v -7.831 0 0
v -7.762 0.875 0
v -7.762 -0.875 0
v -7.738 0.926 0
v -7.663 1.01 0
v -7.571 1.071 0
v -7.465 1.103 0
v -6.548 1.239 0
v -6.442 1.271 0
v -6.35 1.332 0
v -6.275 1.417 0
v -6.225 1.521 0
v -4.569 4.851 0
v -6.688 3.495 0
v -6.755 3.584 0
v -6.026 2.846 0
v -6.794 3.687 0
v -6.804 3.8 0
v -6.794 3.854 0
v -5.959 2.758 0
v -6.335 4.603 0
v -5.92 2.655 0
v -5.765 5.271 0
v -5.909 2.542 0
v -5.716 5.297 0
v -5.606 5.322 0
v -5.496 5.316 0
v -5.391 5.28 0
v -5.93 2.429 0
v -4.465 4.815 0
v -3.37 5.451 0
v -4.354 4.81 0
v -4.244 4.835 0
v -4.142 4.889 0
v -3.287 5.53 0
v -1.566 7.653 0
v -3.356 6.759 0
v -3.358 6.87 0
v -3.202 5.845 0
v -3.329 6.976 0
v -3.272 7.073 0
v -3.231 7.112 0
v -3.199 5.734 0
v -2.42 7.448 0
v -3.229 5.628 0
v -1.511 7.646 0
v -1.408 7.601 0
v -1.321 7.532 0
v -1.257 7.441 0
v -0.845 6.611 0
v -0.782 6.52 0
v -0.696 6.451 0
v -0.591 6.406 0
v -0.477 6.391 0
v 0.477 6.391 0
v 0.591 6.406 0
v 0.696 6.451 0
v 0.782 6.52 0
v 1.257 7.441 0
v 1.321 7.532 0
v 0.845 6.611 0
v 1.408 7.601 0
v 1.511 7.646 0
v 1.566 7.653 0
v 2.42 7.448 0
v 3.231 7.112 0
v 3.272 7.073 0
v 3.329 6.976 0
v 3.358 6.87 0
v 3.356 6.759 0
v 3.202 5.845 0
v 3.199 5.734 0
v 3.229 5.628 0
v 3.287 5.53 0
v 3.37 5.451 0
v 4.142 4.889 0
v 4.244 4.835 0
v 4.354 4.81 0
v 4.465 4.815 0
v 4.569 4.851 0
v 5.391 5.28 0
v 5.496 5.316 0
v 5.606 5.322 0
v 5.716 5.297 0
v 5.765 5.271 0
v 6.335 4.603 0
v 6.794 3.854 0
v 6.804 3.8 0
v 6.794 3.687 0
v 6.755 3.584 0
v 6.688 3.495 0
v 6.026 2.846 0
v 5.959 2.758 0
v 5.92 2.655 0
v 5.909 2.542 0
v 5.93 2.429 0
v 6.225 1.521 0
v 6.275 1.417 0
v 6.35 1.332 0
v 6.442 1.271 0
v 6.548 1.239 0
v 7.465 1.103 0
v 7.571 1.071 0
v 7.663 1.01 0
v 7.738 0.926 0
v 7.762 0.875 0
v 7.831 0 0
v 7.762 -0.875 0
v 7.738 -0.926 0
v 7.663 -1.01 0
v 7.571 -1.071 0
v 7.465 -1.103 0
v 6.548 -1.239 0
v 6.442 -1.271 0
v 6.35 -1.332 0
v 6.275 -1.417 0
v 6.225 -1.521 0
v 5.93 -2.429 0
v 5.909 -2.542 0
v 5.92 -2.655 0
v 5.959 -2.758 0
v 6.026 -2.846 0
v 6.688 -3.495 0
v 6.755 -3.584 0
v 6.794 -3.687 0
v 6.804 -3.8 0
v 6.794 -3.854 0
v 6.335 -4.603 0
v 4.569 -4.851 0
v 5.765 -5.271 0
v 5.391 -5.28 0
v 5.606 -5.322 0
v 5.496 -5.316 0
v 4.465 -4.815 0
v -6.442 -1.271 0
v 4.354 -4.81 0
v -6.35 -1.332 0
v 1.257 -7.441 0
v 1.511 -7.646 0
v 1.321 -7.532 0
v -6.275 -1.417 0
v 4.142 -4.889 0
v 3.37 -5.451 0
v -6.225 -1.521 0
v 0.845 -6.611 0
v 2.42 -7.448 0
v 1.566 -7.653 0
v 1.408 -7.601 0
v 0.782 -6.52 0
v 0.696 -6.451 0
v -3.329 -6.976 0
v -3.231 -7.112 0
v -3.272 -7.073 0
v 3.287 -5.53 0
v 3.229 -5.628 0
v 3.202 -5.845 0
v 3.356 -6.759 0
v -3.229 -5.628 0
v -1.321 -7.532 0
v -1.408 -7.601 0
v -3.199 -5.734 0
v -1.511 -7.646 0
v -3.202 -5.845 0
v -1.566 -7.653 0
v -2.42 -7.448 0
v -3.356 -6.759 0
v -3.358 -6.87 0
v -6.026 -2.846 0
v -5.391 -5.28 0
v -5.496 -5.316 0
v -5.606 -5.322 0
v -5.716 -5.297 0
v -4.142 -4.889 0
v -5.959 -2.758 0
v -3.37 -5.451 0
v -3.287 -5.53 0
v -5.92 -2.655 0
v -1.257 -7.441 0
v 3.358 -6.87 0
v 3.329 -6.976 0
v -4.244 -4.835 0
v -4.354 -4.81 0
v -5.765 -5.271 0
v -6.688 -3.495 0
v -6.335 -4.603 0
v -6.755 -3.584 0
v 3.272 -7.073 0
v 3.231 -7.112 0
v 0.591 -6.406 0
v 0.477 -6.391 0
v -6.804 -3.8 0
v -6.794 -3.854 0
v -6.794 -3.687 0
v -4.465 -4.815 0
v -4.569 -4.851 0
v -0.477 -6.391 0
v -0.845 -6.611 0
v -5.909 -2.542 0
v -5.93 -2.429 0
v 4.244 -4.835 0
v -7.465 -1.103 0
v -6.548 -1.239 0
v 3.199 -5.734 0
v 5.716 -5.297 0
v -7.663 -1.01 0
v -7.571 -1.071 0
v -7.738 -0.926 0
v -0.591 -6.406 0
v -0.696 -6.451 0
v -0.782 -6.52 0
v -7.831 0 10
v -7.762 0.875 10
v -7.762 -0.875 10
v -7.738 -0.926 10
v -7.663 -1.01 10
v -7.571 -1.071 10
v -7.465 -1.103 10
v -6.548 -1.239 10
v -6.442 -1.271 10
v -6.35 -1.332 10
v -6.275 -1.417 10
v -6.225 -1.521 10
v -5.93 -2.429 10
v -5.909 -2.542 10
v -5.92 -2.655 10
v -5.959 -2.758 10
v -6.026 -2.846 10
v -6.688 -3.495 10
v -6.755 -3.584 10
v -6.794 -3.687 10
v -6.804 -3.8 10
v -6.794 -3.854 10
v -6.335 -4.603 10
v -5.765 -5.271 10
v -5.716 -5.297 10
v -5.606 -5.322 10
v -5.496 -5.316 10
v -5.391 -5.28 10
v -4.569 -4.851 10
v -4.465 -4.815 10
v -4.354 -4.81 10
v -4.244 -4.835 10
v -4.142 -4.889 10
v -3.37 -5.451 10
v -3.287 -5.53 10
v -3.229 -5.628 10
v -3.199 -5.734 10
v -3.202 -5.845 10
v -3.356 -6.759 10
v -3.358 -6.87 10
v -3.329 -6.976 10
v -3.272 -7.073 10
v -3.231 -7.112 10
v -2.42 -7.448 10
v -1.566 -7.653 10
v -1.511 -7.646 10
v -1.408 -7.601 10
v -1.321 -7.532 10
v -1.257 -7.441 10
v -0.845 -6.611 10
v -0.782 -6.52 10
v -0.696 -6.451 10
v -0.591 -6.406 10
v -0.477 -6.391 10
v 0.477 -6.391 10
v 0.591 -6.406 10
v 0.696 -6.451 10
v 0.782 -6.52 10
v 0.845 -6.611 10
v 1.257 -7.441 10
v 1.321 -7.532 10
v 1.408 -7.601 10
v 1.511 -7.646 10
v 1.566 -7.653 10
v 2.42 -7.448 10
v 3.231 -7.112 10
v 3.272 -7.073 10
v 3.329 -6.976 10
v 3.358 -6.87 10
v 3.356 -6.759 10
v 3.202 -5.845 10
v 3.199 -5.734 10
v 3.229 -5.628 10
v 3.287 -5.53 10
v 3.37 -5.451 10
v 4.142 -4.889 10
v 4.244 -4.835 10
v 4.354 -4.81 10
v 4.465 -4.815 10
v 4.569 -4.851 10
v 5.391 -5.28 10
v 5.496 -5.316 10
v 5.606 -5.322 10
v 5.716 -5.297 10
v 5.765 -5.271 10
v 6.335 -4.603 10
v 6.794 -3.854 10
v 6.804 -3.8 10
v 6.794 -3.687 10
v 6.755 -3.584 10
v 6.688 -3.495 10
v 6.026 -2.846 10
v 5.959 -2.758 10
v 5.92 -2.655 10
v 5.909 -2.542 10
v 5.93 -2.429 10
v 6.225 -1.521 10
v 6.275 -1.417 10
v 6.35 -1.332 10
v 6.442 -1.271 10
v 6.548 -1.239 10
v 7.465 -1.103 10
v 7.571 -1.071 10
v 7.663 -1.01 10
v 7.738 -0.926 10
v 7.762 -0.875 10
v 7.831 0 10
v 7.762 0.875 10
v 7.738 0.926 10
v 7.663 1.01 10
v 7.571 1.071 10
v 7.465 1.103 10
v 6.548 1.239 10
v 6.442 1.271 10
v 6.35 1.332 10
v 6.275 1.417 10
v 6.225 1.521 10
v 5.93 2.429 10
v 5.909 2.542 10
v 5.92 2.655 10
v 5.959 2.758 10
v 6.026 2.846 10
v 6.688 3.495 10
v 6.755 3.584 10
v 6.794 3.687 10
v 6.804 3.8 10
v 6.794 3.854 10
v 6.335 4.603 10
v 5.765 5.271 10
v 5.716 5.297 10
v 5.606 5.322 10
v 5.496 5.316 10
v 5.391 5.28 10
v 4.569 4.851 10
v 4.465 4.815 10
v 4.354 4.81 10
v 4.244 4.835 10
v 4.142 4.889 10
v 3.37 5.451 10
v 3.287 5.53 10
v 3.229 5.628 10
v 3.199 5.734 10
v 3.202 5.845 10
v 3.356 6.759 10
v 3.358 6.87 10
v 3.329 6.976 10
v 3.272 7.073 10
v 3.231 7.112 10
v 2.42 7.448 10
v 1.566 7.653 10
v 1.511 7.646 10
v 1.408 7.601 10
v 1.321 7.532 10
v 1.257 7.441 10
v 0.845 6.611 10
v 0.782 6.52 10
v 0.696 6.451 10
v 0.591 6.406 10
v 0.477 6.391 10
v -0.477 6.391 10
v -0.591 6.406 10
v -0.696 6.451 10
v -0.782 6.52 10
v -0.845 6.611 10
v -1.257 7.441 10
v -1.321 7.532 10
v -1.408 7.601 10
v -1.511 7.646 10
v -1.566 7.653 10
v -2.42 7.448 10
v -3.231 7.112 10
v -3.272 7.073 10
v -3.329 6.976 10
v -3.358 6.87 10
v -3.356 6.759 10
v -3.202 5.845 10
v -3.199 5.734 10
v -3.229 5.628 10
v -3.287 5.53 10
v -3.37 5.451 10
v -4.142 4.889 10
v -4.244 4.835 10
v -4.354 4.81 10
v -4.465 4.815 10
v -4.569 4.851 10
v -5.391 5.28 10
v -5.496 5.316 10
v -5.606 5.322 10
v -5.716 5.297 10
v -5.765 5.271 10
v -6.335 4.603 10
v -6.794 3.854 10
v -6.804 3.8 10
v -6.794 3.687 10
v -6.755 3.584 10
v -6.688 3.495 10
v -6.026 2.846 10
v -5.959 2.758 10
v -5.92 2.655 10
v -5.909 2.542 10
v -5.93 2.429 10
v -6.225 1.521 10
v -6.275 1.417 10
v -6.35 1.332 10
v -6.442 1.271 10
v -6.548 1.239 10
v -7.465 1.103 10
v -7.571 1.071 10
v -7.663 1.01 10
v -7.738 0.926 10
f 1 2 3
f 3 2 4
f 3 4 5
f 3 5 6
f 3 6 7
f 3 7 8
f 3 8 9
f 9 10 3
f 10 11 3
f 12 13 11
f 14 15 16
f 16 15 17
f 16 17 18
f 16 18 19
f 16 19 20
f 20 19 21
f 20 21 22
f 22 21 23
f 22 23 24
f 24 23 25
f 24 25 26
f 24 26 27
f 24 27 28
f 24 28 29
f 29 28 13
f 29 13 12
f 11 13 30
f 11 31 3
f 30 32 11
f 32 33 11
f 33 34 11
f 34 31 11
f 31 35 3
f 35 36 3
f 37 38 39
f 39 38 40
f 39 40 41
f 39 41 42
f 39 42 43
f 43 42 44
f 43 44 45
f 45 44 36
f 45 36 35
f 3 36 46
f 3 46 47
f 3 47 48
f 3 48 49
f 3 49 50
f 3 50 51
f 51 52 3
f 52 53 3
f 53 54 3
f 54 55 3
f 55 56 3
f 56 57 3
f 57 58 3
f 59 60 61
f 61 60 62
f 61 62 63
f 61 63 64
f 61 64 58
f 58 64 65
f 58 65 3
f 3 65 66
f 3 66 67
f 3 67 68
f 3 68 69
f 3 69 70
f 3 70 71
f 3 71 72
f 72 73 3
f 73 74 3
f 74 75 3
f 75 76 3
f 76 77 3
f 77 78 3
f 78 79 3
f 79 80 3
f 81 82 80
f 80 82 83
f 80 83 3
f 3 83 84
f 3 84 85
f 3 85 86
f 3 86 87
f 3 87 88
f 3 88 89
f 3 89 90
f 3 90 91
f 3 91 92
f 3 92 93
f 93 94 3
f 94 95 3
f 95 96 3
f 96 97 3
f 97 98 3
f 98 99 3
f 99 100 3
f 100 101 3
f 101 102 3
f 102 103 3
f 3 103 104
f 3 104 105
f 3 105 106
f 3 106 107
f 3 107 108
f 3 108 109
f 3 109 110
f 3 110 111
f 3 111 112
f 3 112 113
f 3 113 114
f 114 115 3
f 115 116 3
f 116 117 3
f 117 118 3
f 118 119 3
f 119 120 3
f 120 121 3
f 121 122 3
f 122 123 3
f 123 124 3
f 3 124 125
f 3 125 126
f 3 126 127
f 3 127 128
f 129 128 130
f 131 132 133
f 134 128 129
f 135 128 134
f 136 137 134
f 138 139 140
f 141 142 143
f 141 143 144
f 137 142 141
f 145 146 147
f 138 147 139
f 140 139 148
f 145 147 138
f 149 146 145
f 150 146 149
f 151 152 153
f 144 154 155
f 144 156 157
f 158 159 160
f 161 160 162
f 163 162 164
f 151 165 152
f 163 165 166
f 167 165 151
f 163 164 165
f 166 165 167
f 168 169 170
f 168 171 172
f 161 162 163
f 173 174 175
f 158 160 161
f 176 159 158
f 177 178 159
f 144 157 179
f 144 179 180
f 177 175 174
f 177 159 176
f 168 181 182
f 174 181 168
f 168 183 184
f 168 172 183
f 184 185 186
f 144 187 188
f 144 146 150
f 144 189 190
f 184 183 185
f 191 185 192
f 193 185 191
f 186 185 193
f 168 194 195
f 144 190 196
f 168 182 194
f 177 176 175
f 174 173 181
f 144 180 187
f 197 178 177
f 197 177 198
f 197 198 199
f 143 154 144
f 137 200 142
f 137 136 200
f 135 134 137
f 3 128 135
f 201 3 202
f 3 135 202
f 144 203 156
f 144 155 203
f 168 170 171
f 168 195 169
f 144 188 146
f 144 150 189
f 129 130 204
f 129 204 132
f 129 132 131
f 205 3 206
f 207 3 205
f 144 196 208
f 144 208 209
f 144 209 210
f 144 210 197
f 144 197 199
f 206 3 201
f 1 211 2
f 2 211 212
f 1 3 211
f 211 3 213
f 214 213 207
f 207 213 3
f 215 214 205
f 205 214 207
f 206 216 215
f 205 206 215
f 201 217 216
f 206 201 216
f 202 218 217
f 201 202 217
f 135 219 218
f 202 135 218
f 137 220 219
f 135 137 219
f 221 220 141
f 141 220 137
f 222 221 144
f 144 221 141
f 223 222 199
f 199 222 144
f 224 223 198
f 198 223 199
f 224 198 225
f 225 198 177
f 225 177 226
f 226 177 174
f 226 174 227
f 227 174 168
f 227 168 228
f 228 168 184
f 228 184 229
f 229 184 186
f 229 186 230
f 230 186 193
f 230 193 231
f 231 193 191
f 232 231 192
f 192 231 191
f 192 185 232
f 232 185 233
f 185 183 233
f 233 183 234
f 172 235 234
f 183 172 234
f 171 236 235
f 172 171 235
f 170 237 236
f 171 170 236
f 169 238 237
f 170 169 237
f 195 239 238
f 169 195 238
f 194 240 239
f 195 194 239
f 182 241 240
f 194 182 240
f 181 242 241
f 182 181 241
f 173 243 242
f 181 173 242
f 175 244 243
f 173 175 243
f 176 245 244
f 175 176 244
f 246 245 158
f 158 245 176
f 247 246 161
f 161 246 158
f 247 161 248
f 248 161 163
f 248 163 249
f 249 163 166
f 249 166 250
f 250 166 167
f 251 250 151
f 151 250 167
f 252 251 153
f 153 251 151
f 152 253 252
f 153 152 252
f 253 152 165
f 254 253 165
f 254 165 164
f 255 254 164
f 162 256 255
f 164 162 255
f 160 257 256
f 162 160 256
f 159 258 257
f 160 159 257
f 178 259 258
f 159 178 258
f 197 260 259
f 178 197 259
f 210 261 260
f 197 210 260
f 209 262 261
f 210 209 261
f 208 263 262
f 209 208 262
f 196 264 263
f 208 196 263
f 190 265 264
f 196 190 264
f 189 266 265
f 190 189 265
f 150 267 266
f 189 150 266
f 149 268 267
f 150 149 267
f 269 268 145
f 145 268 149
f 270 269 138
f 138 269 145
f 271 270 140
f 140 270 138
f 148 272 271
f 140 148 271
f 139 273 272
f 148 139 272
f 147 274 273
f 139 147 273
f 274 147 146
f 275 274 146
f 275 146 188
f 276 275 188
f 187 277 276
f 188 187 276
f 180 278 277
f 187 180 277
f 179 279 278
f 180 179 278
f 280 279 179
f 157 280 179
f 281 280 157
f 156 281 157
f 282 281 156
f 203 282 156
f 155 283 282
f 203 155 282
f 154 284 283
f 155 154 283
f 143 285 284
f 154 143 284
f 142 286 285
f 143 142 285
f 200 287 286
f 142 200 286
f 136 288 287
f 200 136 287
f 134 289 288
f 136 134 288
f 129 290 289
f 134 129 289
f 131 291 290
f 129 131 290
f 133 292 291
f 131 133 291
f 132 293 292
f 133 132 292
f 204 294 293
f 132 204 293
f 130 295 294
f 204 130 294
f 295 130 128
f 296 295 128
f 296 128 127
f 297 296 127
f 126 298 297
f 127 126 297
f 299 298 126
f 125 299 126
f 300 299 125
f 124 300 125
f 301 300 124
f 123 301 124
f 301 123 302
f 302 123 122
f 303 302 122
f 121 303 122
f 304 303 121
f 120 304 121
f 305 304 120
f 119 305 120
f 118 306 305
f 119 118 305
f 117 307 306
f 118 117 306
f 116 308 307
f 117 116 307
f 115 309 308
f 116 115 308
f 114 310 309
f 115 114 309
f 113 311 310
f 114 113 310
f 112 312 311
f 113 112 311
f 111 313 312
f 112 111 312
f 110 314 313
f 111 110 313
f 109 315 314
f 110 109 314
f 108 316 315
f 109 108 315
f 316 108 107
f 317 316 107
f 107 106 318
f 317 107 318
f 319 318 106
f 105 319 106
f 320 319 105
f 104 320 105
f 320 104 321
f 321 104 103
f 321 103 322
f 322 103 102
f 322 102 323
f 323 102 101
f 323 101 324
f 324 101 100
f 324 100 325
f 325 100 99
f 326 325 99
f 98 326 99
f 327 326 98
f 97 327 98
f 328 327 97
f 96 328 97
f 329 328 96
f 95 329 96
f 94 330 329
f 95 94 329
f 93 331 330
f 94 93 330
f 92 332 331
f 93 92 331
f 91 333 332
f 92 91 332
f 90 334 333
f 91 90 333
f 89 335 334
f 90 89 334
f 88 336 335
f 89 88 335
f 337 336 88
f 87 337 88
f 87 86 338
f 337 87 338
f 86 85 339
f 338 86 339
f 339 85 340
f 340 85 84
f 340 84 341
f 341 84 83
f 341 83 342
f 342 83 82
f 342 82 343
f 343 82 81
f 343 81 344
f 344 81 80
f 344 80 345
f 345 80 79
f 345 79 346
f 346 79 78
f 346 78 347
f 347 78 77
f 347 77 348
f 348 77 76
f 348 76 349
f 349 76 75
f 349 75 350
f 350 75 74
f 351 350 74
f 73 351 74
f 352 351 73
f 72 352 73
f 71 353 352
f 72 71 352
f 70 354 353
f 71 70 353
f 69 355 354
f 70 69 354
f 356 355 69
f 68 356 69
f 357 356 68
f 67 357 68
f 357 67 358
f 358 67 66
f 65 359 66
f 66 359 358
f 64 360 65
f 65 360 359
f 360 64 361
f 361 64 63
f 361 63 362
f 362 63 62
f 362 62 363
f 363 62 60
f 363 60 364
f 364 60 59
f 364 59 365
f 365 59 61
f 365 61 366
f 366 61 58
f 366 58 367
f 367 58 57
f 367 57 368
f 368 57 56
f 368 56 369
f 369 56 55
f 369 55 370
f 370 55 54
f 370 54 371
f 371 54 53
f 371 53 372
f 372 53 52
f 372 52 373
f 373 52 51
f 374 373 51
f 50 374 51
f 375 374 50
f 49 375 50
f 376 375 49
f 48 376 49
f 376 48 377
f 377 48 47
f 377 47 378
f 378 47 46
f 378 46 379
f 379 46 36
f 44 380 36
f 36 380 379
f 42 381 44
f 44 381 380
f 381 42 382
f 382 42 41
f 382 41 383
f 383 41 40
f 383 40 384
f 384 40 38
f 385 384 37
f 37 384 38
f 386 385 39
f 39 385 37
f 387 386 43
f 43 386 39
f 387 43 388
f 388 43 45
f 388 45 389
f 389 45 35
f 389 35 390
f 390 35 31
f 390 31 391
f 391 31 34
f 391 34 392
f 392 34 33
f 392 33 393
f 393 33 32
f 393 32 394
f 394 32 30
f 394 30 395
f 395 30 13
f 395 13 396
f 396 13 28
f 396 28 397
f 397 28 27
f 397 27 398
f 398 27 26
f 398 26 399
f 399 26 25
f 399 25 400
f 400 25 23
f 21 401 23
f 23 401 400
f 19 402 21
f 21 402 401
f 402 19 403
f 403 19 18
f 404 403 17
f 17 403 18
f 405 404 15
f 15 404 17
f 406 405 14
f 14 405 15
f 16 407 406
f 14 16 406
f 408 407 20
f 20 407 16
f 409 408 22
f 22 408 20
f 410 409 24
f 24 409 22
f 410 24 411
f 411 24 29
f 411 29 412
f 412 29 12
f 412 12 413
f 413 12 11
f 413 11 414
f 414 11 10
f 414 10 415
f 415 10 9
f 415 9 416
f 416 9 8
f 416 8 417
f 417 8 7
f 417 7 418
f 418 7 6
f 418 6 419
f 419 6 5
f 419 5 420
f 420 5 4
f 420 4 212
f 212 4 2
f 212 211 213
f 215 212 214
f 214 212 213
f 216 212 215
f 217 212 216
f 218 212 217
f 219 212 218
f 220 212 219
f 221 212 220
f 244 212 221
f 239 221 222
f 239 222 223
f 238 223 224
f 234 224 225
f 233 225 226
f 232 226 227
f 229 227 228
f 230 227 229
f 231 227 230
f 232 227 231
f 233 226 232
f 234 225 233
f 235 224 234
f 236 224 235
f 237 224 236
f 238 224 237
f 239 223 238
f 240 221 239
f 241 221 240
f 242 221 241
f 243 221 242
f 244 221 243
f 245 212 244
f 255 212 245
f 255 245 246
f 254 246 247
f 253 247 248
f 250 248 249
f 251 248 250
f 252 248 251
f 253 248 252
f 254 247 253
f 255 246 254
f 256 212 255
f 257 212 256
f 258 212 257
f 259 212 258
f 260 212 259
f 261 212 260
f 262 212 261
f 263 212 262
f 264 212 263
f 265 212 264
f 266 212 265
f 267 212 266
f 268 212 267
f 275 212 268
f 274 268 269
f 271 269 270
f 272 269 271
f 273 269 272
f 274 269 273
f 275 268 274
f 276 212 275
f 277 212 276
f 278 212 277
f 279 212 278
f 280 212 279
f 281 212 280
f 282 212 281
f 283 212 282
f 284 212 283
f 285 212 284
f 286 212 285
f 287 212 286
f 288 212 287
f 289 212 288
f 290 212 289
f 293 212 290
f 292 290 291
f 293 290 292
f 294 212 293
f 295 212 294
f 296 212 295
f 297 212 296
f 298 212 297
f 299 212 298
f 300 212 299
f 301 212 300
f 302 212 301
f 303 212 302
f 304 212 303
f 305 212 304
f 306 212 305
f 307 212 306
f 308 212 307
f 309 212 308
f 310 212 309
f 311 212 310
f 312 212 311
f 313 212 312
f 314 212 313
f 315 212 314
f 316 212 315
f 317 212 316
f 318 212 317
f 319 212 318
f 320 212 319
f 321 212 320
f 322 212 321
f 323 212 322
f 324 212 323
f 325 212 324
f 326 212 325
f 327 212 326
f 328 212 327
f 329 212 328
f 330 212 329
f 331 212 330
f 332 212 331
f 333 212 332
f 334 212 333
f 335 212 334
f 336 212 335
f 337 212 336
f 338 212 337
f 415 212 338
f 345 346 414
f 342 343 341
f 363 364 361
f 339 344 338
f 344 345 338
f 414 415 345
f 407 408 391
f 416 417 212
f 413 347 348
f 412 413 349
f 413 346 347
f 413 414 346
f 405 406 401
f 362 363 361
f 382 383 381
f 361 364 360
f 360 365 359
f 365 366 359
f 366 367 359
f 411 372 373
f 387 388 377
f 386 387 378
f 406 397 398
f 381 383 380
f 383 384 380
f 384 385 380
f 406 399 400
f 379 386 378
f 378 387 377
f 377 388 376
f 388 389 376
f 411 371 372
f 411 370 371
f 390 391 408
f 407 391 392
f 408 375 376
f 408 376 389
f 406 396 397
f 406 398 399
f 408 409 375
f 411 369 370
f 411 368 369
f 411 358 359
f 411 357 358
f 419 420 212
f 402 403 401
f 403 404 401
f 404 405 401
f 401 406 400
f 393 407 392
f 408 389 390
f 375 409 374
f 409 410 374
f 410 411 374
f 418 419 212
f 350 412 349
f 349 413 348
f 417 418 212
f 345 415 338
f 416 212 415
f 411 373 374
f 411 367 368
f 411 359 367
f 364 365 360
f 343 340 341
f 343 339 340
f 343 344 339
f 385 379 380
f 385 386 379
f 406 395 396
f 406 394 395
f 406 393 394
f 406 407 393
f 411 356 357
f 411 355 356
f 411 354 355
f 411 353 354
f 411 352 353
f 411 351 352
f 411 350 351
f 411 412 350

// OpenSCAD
// Parametric Pulley with multiple belt profiles
// by droftarts January 2012

// Based on pulleys by:
// http://www.thingiverse.com/thing:11256 by me!
// https://github.com/prusajr/PrusaMendel by Josef Prusa
// http://www.thingiverse.com/thing:3104 by GilesBathgate
// http://www.thingiverse.com/thing:2079 by nophead

// dxf tooth data from http://oem.cadregister.com/asp/PPOW_Entry.asp?company=915217&elementID=07807803/METRIC/URETH/WV0025/F
// pulley diameter checked and modelled from data at http://www.sdp-si.com/D265/HTML/D265T016.html

/**
 * @name Pulley
 * @category Printed
 * @using 1 x m3 nut, normal or nyloc
 * @using 1 x m3x10 set screw or 1 x m3x8 grub screw
 */


// tuneable constants

// Minimum of 10 teeth

teeth = 10;			// Number of teeth, standard Mendel T5 belt = 8, gives Outside Diameter of 11.88mm
profile = 3;		// 1=MXL 2=40DP 3=XL 4=H 5=T2.5 6=T5 7=T10 8=AT5 9=HTD_3mm 10=HTD_5mm 11=HTD_8mm 12=GT2_2mm 13=GT2_3mm 14=GT2_5mm

motor_shaft = 0;	// NEMA17 motor shaft exact diameter = 5
m3_dia = 0;		// 3mm hole diameter
m3_nut_hex = 0;		// 1 for hex, 0 for square nut
m3_nut_flats = 0;	// normal M3 hex nut exact width = 5.5
m3_nut_depth = 0;	// normal M3 hex nut exact depth = 2.4, nyloc = 4

retainer = 0;		// Belt retainer above teeth, 0 = No, 1 = Yes
retainer_ht = 0;	// height of retainer flange over pulley, standard = 1.5
idler = 0;			// Belt retainer below teeth, 0 = No, 1 = Yes
idler_ht = 0;		// height of idler flange over pulley, standard = 1.5

pulley_t_ht = 10;	// length of toothed part of pulley, standard = 12
pulley_b_ht = 0;		// pulley base height, standard = 8. Set to same as idler_ht if you want an idler but no pulley.
pulley_b_dia = 10;	// pulley base diameter, standard = 20
no_of_nuts = 0;		// number of captive nuts required, standard = 1
nut_angle = 0;		// angle between nuts, standard = 90
nut_shaft_distance = 0;	// distance between inner face of nut and shaft, can be negative.


//	********************************
//	** Scaling tooth for good fit **
//	********************************
/*	To improve fit of belt to pulley, set the following constant. Decrease or increase by 0.1mm at a time. We are modelling the *BELT* tooth here, not the tooth on the pulley. Increasing the number will *decrease* the pulley tooth size. Increasing the tooth width will also scale proportionately the tooth depth, to maintain the shape of the tooth, and increase how far into the pulley the tooth is indented. Can be negative */

additional_tooth_width = 0.2; //mm

//	If you need more tooth depth than this provides, adjust the following constant. However, this will cause the shape of the tooth to change.

additional_tooth_depth = 0; //mm

// calculated constants

nut_elevation = pulley_b_ht/2;
m3_nut_points = 2*((m3_nut_flats/2)/cos(30)); // This is needed for the nut trap

// The following set the pulley diameter for a given number of teeth

MXL_pulley_dia = tooth_spacing (2.032,0.254);
40DP_pulley_dia = tooth_spacing (2.07264,0.1778);
XL_pulley_dia = tooth_spacing (5.08,0.254);
H_pulley_dia = tooth_spacing (9.525,0.381);
T2_5_pulley_dia = tooth_spaceing_curvefit (0.7467,0.796,1.026);
T5_pulley_dia = tooth_spaceing_curvefit (0.6523,1.591,1.064);
T10_pulley_dia = tooth_spacing (10,0.93);
AT5_pulley_dia = tooth_spaceing_curvefit (0.6523,1.591,1.064);
HTD_3mm_pulley_dia = tooth_spacing (3,0.381);
HTD_5mm_pulley_dia = tooth_spacing (5,0.5715);
HTD_8mm_pulley_dia = tooth_spacing (8,0.6858);
GT2_2mm_pulley_dia = tooth_spacing (2,0.254);
GT2_3mm_pulley_dia = tooth_spacing (3,0.381);
GT2_5mm_pulley_dia = tooth_spacing (5,0.5715);

// The following calls the pulley creation part, and passes the pulley diameter and tooth width to that module

if ( profile == 1 ) { pulley ( "MXL" , MXL_pulley_dia , 0.508 , 1.321 ); }
if ( profile == 2 ) { pulley ( "40 D.P." , 40DP_pulley_dia , 0.457 , 1.226 ); }
if ( profile == 3 ) { pulley ( "XL" , XL_pulley_dia , 1.27, 3.051 ); }
if ( profile == 4 ) { pulley ( "H" , H_pulley_dia ,1.905 , 5.359 ); }
if ( profile == 5 ) { pulley ( "T2.5" , T2_5_pulley_dia , 0.7 , 1.678 ); }
if ( profile == 6 ) { pulley ( "T5" , T5_pulley_dia , 1.19 , 3.264 ); }
if ( profile == 7 ) { pulley ( "T10" , T10_pulley_dia , 2.5 , 6.13 ); }
if ( profile == 8 ) { pulley ( "AT5" , AT5_pulley_dia , 1.19 , 4.268 ); }
if ( profile == 9 ) { pulley ( "HTD 3mm" , HTD_3mm_pulley_dia , 1.289 , 2.27 ); }
if ( profile == 10 ) { pulley ( "HTD 5mm" , HTD_5mm_pulley_dia , 2.199 , 3.781 ); }
if ( profile == 11 ) { pulley ( "HTD 8mm" , HTD_8mm_pulley_dia , 3.607 , 6.603 ); }
if ( profile == 12 ) { pulley ( "GT2 2mm" , GT2_2mm_pulley_dia , 0.764 , 1.494 ); }
if ( profile == 13 ) { pulley ( "GT2 3mm" , GT2_3mm_pulley_dia , 1.169 , 2.31 ); }
if ( profile == 14 ) { pulley ( "GT2 5mm" , GT2_5mm_pulley_dia , 1.969 , 3.952 ); }

// Functions

function tooth_spaceing_curvefit (b,c,d)
	= ((c * pow(teeth,d)) / (b + pow(teeth,d))) * teeth ;

function tooth_spacing(tooth_pitch,pitch_line_offset)
	= (2*((teeth*tooth_pitch)/(3.14159265*2)-pitch_line_offset)) ;

// Main Module

module pulley( belt_type , pulley_OD , tooth_depth , tooth_width )
	{
	echo (str("Belt type = ",belt_type,"; Number of teeth = ",teeth,"; Pulley Outside Diameter = ",pulley_OD,"mm "));
	tooth_distance_from_centre = sqrt( pow(pulley_OD/2,2) - pow((tooth_width+additional_tooth_width)/2,2));
	tooth_width_scale = (tooth_width + additional_tooth_width ) / tooth_width;
	tooth_depth_scale = ((tooth_depth + additional_tooth_depth ) / tooth_depth) ;


//	************************************************************************
//	*** uncomment the following line if pulley is wider than puller base ***
//	************************************************************************

//	translate ([0,0, pulley_b_ht + pulley_t_ht + retainer_ht ]) rotate ([0,180,0])

	difference()
	 {	 
		union()
		{
			//base
	
			if ( pulley_b_ht < 2 ) { echo ("CAN'T DRAW PULLEY BASE, HEIGHT LESS THAN 2!!!"); } else {
				rotate_extrude($fn=pulley_b_dia*2)
				{
						square([pulley_b_dia/2-1,pulley_b_ht]);
						square([pulley_b_dia/2,pulley_b_ht-1]);
						translate([pulley_b_dia/2-1,pulley_b_ht-1]) circle(1);
				}
			}
	
		difference()
			{
			//shaft - diameter is outside diameter of pulley
			
			translate([0,0,pulley_b_ht]) 
			rotate ([0,0,360/(teeth*4)]) 
			cylinder(r=pulley_OD/2,h=pulley_t_ht, $fn=teeth*4);
	
			//teeth - cut out of shaft
		
			for(i=[1:teeth]) 
			rotate([0,0,i*(360/teeth)])
			translate([0,-tooth_distance_from_centre,pulley_b_ht -1]) 
			scale ([ tooth_width_scale , tooth_depth_scale , 1 ]) 
			{
			if ( profile == 1 ) { MXL();}
			if ( profile == 2 ) { 40DP();}
			if ( profile == 3 ) { XL();}
			if ( profile == 4 ) { H();}
			if ( profile == 5 ) { T2_5();}
			if ( profile == 6 ) { T5();}
			if ( profile == 7 ) { T10();}
			if ( profile == 8 ) { AT5();}
			if ( profile == 9 ) { HTD_3mm();}
			if ( profile == 10 ) { HTD_5mm();}
			if ( profile == 11 ) { HTD_8mm();}
			if ( profile == 12 ) { GT2_2mm();}
			if ( profile == 13 ) { GT2_3mm();}
			if ( profile == 14 ) { GT2_5mm();}
			}

			}
			
		//belt retainer / idler
		if ( retainer > 0 ) {translate ([0,0, pulley_b_ht + pulley_t_ht ]) 
		rotate_extrude($fn=teeth*4)  
		polygon([[0,0],[pulley_OD/2,0],[pulley_OD/2 + retainer_ht , retainer_ht],[0 , retainer_ht],[0,0]]);}
		
		if ( idler > 0 ) {translate ([0,0, pulley_b_ht - idler_ht ]) 
		rotate_extrude($fn=teeth*4)  
		polygon([[0,0],[pulley_OD/2 + idler_ht,0],[pulley_OD/2 , idler_ht],[0 , idler_ht],[0,0]]);}
	
		}
	   
		//hole for motor shaft
		translate([0,0,-1])cylinder(r=motor_shaft/2,h=pulley_b_ht + pulley_t_ht + retainer_ht + 2,$fn=motor_shaft*4);
				
		//captive nut and grub screw holes
	
		if ( pulley_b_ht < m3_nut_flats ) { echo ("CAN'T DRAW CAPTIVE NUTS, HEIGHT LESS THAN NUT DIAMETER!!!"); } else {
		if ( (pulley_b_dia - motor_shaft)/2 < m3_nut_depth + 3 ) { echo ("CAN'T DRAW CAPTIVE NUTS, DIAMETER TOO SMALL FOR NUT DEPTH!!!"); } else {
	
			for(j=[1:no_of_nuts]) rotate([0,0,j*nut_angle])
			translate([0,0,nut_elevation])rotate([90,0,0])
	
			union()
			{
				//entrance
				translate([0,-pulley_b_ht/4-0.5,motor_shaft/2+m3_nut_depth/2+nut_shaft_distance]) cube([m3_nut_flats,pulley_b_ht/2+1,m3_nut_depth],center=true);
	
				//nut
				if ( m3_nut_hex > 0 )
					{
						// hex nut
						translate([0,0.25,motor_shaft/2+m3_nut_depth/2+nut_shaft_distance]) rotate([0,0,30]) cylinder(r=m3_nut_points/2,h=m3_nut_depth,center=true,$fn=6);
					} else {
						// square nut
						translate([0,0.25,motor_shaft/2+m3_nut_depth/2+nut_shaft_distance]) cube([m3_nut_flats,m3_nut_flats,m3_nut_depth],center=true);
					}
	
				//grub screw hole
				rotate([0,0,22.5])cylinder(r=m3_dia/2,h=pulley_b_dia/2+1,$fn=8);
			}
		}}
	 }
	   
	}


// Tooth profile modules

module MXL()
	{
	linear_extrude(height=pulley_t_ht+2) polygon([[-0.660421,-0.5],[-0.660421,0],[-0.621898,0.006033],[-0.587714,0.023037],[-0.560056,0.049424],[-0.541182,0.083609],[-0.417357,0.424392],[-0.398413,0.458752],[-0.370649,0.48514],[-0.336324,0.502074],[-0.297744,0.508035],[0.297744,0.508035],[0.336268,0.502074],[0.370452,0.48514],[0.39811,0.458752],[0.416983,0.424392],[0.540808,0.083609],[0.559752,0.049424],[0.587516,0.023037],[0.621841,0.006033],[0.660421,0],[0.660421,-0.5]]);
	}

module 40DP()
	{
	linear_extrude(height=pulley_t_ht+2) polygon([[-0.612775,-0.5],[-0.612775,0],[-0.574719,0.010187],[-0.546453,0.0381],[-0.355953,0.3683],[-0.327604,0.405408],[-0.291086,0.433388],[-0.248548,0.451049],[-0.202142,0.4572],[0.202494,0.4572],[0.248653,0.451049],[0.291042,0.433388],[0.327609,0.405408],[0.356306,0.3683],[0.546806,0.0381],[0.574499,0.010187],[0.612775,0],[0.612775,-0.5]]);
	}

module XL()
	{
	linear_extrude(height=pulley_t_ht+2) polygon([[-1.525411,-1],[-1.525411,0],[-1.41777,0.015495],[-1.320712,0.059664],[-1.239661,0.129034],[-1.180042,0.220133],[-0.793044,1.050219],[-0.733574,1.141021],[-0.652507,1.210425],[-0.555366,1.254759],[-0.447675,1.270353],[0.447675,1.270353],[0.555366,1.254759],[0.652507,1.210425],[0.733574,1.141021],[0.793044,1.050219],[1.180042,0.220133],[1.239711,0.129034],[1.320844,0.059664],[1.417919,0.015495],[1.525411,0],[1.525411,-1]]);
	}

module H()
	{
	linear_extrude(height=pulley_t_ht+2) polygon([[-2.6797,-1],[-2.6797,0],[-2.600907,0.006138],[-2.525342,0.024024],[-2.45412,0.052881],[-2.388351,0.091909],[-2.329145,0.140328],[-2.277614,0.197358],[-2.234875,0.262205],[-2.202032,0.334091],[-1.75224,1.57093],[-1.719538,1.642815],[-1.676883,1.707663],[-1.62542,1.764693],[-1.566256,1.813112],[-1.500512,1.85214],[-1.4293,1.880997],[-1.353742,1.898883],[-1.274949,1.905021],[1.275281,1.905021],[1.354056,1.898883],[1.429576,1.880997],[1.500731,1.85214],[1.566411,1.813112],[1.625508,1.764693],[1.676919,1.707663],[1.719531,1.642815],[1.752233,1.57093],[2.20273,0.334091],[2.235433,0.262205],[2.278045,0.197358],[2.329455,0.140328],[2.388553,0.091909],[2.454233,0.052881],[2.525384,0.024024],[2.600904,0.006138],[2.6797,0],[2.6797,-1]]);
	}

module T2_5()
	{
	linear_extrude(height=pulley_t_ht+2) polygon([[-0.839258,-0.5],[-0.839258,0],[-0.770246,0.021652],[-0.726369,0.079022],[-0.529167,0.620889],[-0.485025,0.67826],[-0.416278,0.699911],[0.416278,0.699911],[0.484849,0.67826],[0.528814,0.620889],[0.726369,0.079022],[0.770114,0.021652],[0.839258,0],[0.839258,-0.5]]);
	}

module T5()
	{
	linear_extrude(height=pulley_t_ht+2) polygon([[-1.632126,-0.5],[-1.632126,0],[-1.568549,0.004939],[-1.507539,0.019367],[-1.450023,0.042686],[-1.396912,0.074224],[-1.349125,0.113379],[-1.307581,0.159508],[-1.273186,0.211991],[-1.246868,0.270192],[-1.009802,0.920362],[-0.983414,0.978433],[-0.949018,1.030788],[-0.907524,1.076798],[-0.859829,1.115847],[-0.80682,1.147314],[-0.749402,1.170562],[-0.688471,1.184956],[-0.624921,1.189895],[0.624971,1.189895],[0.688622,1.184956],[0.749607,1.170562],[0.807043,1.147314],[0.860055,1.115847],[0.907754,1.076798],[0.949269,1.030788],[0.9837,0.978433],[1.010193,0.920362],[1.246907,0.270192],[1.273295,0.211991],[1.307726,0.159508],[1.349276,0.113379],[1.397039,0.074224],[1.450111,0.042686],[1.507589,0.019367],[1.568563,0.004939],[1.632126,0],[1.632126,-0.5]]);
	}

module T10()
	{
	linear_extrude(height=pulley_t_ht+2) polygon([[-3.06511,-1],[-3.06511,0],[-2.971998,0.007239],[-2.882718,0.028344],[-2.79859,0.062396],[-2.720931,0.108479],[-2.651061,0.165675],[-2.590298,0.233065],[-2.539962,0.309732],[-2.501371,0.394759],[-1.879071,2.105025],[-1.840363,2.190052],[-1.789939,2.266719],[-1.729114,2.334109],[-1.659202,2.391304],[-1.581518,2.437387],[-1.497376,2.47144],[-1.408092,2.492545],[-1.314979,2.499784],[1.314979,2.499784],[1.408091,2.492545],[1.497371,2.47144],[1.581499,2.437387],[1.659158,2.391304],[1.729028,2.334109],[1.789791,2.266719],[1.840127,2.190052],[1.878718,2.105025],[2.501018,0.394759],[2.539726,0.309732],[2.59015,0.233065],[2.650975,0.165675],[2.720887,0.108479],[2.798571,0.062396],[2.882713,0.028344],[2.971997,0.007239],[3.06511,0],[3.06511,-1]]);
	}

module AT5()
	{
	linear_extrude(height=pulley_t_ht+2) polygon([[-2.134129,-0.75],[-2.134129,0],[-2.058023,0.005488],[-1.984595,0.021547],[-1.914806,0.047569],[-1.849614,0.082947],[-1.789978,0.127073],[-1.736857,0.179338],[-1.691211,0.239136],[-1.653999,0.305859],[-1.349199,0.959203],[-1.286933,1.054635],[-1.201914,1.127346],[-1.099961,1.173664],[-0.986896,1.18992],[0.986543,1.18992],[1.099614,1.173664],[1.201605,1.127346],[1.286729,1.054635],[1.349199,0.959203],[1.653646,0.305859],[1.690859,0.239136],[1.73651,0.179338],[1.789644,0.127073],[1.849305,0.082947],[1.914539,0.047569],[1.984392,0.021547],[2.057906,0.005488],[2.134129,0],[2.134129,-0.75]]);
	}

module HTD_3mm()
	{
	linear_extrude(height=pulley_t_ht+2) polygon([[-1.135062,-0.5],[-1.135062,0],[-1.048323,0.015484],[-0.974284,0.058517],[-0.919162,0.123974],[-0.889176,0.206728],[-0.81721,0.579614],[-0.800806,0.653232],[-0.778384,0.72416],[-0.750244,0.792137],[-0.716685,0.856903],[-0.678005,0.918199],[-0.634505,0.975764],[-0.586483,1.029338],[-0.534238,1.078662],[-0.47807,1.123476],[-0.418278,1.16352],[-0.355162,1.198533],[-0.289019,1.228257],[-0.22015,1.25243],[-0.148854,1.270793],[-0.07543,1.283087],[-0.000176,1.28905],[0.075081,1.283145],[0.148515,1.270895],[0.219827,1.252561],[0.288716,1.228406],[0.354879,1.19869],[0.418018,1.163675],[0.477831,1.123623],[0.534017,1.078795],[0.586276,1.029452],[0.634307,0.975857],[0.677809,0.91827],[0.716481,0.856953],[0.750022,0.792167],[0.778133,0.724174],[0.800511,0.653236],[0.816857,0.579614],[0.888471,0.206728],[0.919014,0.123974],[0.974328,0.058517],[1.048362,0.015484],[1.135062,0],[1.135062,-0.5]]);
	}

module HTD_5mm()
	{
	linear_extrude(height=pulley_t_ht+2) polygon([[-1.89036,-0.75],[-1.89036,0],[-1.741168,0.02669],[-1.61387,0.100806],[-1.518984,0.21342],[-1.467026,0.3556],[-1.427162,0.960967],[-1.398568,1.089602],[-1.359437,1.213531],[-1.310296,1.332296],[-1.251672,1.445441],[-1.184092,1.552509],[-1.108081,1.653042],[-1.024167,1.746585],[-0.932877,1.832681],[-0.834736,1.910872],[-0.730271,1.980701],[-0.62001,2.041713],[-0.504478,2.09345],[-0.384202,2.135455],[-0.259708,2.167271],[-0.131524,2.188443],[-0.000176,2.198511],[0.131296,2.188504],[0.259588,2.167387],[0.384174,2.135616],[0.504527,2.093648],[0.620123,2.04194],[0.730433,1.980949],[0.834934,1.911132],[0.933097,1.832945],[1.024398,1.746846],[1.108311,1.653291],[1.184308,1.552736],[1.251865,1.445639],[1.310455,1.332457],[1.359552,1.213647],[1.39863,1.089664],[1.427162,0.960967],[1.467026,0.3556],[1.518984,0.21342],[1.61387,0.100806],[1.741168,0.02669],[1.89036,0],[1.89036,-0.75]]);
	}

module HTD_8mm()
	{
	linear_extrude(height=pulley_t_ht+2) polygon([[-3.301471,-1],[-3.301471,0],[-3.16611,0.012093],[-3.038062,0.047068],[-2.919646,0.10297],[-2.813182,0.177844],[-2.720989,0.269734],[-2.645387,0.376684],[-2.588694,0.496739],[-2.553229,0.627944],[-2.460801,1.470025],[-2.411413,1.691917],[-2.343887,1.905691],[-2.259126,2.110563],[-2.158035,2.30575],[-2.041518,2.490467],[-1.910478,2.66393],[-1.76582,2.825356],[-1.608446,2.973961],[-1.439261,3.10896],[-1.259169,3.22957],[-1.069074,3.335006],[-0.869878,3.424485],[-0.662487,3.497224],[-0.447804,3.552437],[-0.226732,3.589341],[-0.000176,3.607153],[0.226511,3.589461],[0.447712,3.552654],[0.66252,3.497516],[0.870027,3.424833],[1.069329,3.33539],[1.259517,3.229973],[1.439687,3.109367],[1.608931,2.974358],[1.766344,2.825731],[1.911018,2.664271],[2.042047,2.490765],[2.158526,2.305998],[2.259547,2.110755],[2.344204,1.905821],[2.411591,1.691983],[2.460801,1.470025],[2.553229,0.627944],[2.588592,0.496739],[2.645238,0.376684],[2.720834,0.269734],[2.81305,0.177844],[2.919553,0.10297],[3.038012,0.047068],[3.166095,0.012093],[3.301471,0],[3.301471,-1]]);
	}

module GT2_2mm()
	{
	linear_extrude(height=pulley_t_ht+2) polygon([[0.747183,-0.5],[0.747183,0],[0.647876,0.037218],[0.598311,0.130528],[0.578556,0.238423],[0.547158,0.343077],[0.504649,0.443762],[0.451556,0.53975],[0.358229,0.636924],[0.2484,0.707276],[0.127259,0.750044],[0,0.76447],[-0.127259,0.750044],[-0.2484,0.707276],[-0.358229,0.636924],[-0.451556,0.53975],[-0.504797,0.443762],[-0.547291,0.343077],[-0.578605,0.238423],[-0.598311,0.130528],[-0.648009,0.037218],[-0.747183,0],[-0.747183,-0.5]]);
	}

module GT2_3mm()
	{
	linear_extrude(height=pulley_t_ht+2) polygon([[-1.155171,-0.5],[-1.155171,0],[-1.065317,0.016448],[-0.989057,0.062001],[-0.93297,0.130969],[-0.90364,0.217664],[-0.863705,0.408181],[-0.800056,0.591388],[-0.713587,0.765004],[-0.60519,0.926747],[-0.469751,1.032548],[-0.320719,1.108119],[-0.162625,1.153462],[0,1.168577],[0.162625,1.153462],[0.320719,1.108119],[0.469751,1.032548],[0.60519,0.926747],[0.713587,0.765004],[0.800056,0.591388],[0.863705,0.408181],[0.90364,0.217664],[0.932921,0.130969],[0.988924,0.062001],[1.065168,0.016448],[1.155171,0],[1.155171,-0.5]]);
	}

module GT2_5mm()
	{
	linear_extrude(height=pulley_t_ht+2) polygon([[-1.975908,-0.75],[-1.975908,0],[-1.797959,0.03212],[-1.646634,0.121224],[-1.534534,0.256431],[-1.474258,0.426861],[-1.446911,0.570808],[-1.411774,0.712722],[-1.368964,0.852287],[-1.318597,0.989189],[-1.260788,1.123115],[-1.195654,1.25375],[-1.12331,1.380781],[-1.043869,1.503892],[-0.935264,1.612278],[-0.817959,1.706414],[-0.693181,1.786237],[-0.562151,1.851687],[-0.426095,1.9027],[-0.286235,1.939214],[-0.143795,1.961168],[0,1.9685],[0.143796,1.961168],[0.286235,1.939214],[0.426095,1.9027],[0.562151,1.851687],[0.693181,1.786237],[0.817959,1.706414],[0.935263,1.612278],[1.043869,1.503892],[1.123207,1.380781],[1.195509,1.25375],[1.26065,1.123115],[1.318507,0.989189],[1.368956,0.852287],[1.411872,0.712722],[1.447132,0.570808],[1.474611,0.426861],[1.534583,0.256431],[1.646678,0.121223],[1.798064,0.03212],[1.975908,0],[1.975908,-0.75]]);
	}
